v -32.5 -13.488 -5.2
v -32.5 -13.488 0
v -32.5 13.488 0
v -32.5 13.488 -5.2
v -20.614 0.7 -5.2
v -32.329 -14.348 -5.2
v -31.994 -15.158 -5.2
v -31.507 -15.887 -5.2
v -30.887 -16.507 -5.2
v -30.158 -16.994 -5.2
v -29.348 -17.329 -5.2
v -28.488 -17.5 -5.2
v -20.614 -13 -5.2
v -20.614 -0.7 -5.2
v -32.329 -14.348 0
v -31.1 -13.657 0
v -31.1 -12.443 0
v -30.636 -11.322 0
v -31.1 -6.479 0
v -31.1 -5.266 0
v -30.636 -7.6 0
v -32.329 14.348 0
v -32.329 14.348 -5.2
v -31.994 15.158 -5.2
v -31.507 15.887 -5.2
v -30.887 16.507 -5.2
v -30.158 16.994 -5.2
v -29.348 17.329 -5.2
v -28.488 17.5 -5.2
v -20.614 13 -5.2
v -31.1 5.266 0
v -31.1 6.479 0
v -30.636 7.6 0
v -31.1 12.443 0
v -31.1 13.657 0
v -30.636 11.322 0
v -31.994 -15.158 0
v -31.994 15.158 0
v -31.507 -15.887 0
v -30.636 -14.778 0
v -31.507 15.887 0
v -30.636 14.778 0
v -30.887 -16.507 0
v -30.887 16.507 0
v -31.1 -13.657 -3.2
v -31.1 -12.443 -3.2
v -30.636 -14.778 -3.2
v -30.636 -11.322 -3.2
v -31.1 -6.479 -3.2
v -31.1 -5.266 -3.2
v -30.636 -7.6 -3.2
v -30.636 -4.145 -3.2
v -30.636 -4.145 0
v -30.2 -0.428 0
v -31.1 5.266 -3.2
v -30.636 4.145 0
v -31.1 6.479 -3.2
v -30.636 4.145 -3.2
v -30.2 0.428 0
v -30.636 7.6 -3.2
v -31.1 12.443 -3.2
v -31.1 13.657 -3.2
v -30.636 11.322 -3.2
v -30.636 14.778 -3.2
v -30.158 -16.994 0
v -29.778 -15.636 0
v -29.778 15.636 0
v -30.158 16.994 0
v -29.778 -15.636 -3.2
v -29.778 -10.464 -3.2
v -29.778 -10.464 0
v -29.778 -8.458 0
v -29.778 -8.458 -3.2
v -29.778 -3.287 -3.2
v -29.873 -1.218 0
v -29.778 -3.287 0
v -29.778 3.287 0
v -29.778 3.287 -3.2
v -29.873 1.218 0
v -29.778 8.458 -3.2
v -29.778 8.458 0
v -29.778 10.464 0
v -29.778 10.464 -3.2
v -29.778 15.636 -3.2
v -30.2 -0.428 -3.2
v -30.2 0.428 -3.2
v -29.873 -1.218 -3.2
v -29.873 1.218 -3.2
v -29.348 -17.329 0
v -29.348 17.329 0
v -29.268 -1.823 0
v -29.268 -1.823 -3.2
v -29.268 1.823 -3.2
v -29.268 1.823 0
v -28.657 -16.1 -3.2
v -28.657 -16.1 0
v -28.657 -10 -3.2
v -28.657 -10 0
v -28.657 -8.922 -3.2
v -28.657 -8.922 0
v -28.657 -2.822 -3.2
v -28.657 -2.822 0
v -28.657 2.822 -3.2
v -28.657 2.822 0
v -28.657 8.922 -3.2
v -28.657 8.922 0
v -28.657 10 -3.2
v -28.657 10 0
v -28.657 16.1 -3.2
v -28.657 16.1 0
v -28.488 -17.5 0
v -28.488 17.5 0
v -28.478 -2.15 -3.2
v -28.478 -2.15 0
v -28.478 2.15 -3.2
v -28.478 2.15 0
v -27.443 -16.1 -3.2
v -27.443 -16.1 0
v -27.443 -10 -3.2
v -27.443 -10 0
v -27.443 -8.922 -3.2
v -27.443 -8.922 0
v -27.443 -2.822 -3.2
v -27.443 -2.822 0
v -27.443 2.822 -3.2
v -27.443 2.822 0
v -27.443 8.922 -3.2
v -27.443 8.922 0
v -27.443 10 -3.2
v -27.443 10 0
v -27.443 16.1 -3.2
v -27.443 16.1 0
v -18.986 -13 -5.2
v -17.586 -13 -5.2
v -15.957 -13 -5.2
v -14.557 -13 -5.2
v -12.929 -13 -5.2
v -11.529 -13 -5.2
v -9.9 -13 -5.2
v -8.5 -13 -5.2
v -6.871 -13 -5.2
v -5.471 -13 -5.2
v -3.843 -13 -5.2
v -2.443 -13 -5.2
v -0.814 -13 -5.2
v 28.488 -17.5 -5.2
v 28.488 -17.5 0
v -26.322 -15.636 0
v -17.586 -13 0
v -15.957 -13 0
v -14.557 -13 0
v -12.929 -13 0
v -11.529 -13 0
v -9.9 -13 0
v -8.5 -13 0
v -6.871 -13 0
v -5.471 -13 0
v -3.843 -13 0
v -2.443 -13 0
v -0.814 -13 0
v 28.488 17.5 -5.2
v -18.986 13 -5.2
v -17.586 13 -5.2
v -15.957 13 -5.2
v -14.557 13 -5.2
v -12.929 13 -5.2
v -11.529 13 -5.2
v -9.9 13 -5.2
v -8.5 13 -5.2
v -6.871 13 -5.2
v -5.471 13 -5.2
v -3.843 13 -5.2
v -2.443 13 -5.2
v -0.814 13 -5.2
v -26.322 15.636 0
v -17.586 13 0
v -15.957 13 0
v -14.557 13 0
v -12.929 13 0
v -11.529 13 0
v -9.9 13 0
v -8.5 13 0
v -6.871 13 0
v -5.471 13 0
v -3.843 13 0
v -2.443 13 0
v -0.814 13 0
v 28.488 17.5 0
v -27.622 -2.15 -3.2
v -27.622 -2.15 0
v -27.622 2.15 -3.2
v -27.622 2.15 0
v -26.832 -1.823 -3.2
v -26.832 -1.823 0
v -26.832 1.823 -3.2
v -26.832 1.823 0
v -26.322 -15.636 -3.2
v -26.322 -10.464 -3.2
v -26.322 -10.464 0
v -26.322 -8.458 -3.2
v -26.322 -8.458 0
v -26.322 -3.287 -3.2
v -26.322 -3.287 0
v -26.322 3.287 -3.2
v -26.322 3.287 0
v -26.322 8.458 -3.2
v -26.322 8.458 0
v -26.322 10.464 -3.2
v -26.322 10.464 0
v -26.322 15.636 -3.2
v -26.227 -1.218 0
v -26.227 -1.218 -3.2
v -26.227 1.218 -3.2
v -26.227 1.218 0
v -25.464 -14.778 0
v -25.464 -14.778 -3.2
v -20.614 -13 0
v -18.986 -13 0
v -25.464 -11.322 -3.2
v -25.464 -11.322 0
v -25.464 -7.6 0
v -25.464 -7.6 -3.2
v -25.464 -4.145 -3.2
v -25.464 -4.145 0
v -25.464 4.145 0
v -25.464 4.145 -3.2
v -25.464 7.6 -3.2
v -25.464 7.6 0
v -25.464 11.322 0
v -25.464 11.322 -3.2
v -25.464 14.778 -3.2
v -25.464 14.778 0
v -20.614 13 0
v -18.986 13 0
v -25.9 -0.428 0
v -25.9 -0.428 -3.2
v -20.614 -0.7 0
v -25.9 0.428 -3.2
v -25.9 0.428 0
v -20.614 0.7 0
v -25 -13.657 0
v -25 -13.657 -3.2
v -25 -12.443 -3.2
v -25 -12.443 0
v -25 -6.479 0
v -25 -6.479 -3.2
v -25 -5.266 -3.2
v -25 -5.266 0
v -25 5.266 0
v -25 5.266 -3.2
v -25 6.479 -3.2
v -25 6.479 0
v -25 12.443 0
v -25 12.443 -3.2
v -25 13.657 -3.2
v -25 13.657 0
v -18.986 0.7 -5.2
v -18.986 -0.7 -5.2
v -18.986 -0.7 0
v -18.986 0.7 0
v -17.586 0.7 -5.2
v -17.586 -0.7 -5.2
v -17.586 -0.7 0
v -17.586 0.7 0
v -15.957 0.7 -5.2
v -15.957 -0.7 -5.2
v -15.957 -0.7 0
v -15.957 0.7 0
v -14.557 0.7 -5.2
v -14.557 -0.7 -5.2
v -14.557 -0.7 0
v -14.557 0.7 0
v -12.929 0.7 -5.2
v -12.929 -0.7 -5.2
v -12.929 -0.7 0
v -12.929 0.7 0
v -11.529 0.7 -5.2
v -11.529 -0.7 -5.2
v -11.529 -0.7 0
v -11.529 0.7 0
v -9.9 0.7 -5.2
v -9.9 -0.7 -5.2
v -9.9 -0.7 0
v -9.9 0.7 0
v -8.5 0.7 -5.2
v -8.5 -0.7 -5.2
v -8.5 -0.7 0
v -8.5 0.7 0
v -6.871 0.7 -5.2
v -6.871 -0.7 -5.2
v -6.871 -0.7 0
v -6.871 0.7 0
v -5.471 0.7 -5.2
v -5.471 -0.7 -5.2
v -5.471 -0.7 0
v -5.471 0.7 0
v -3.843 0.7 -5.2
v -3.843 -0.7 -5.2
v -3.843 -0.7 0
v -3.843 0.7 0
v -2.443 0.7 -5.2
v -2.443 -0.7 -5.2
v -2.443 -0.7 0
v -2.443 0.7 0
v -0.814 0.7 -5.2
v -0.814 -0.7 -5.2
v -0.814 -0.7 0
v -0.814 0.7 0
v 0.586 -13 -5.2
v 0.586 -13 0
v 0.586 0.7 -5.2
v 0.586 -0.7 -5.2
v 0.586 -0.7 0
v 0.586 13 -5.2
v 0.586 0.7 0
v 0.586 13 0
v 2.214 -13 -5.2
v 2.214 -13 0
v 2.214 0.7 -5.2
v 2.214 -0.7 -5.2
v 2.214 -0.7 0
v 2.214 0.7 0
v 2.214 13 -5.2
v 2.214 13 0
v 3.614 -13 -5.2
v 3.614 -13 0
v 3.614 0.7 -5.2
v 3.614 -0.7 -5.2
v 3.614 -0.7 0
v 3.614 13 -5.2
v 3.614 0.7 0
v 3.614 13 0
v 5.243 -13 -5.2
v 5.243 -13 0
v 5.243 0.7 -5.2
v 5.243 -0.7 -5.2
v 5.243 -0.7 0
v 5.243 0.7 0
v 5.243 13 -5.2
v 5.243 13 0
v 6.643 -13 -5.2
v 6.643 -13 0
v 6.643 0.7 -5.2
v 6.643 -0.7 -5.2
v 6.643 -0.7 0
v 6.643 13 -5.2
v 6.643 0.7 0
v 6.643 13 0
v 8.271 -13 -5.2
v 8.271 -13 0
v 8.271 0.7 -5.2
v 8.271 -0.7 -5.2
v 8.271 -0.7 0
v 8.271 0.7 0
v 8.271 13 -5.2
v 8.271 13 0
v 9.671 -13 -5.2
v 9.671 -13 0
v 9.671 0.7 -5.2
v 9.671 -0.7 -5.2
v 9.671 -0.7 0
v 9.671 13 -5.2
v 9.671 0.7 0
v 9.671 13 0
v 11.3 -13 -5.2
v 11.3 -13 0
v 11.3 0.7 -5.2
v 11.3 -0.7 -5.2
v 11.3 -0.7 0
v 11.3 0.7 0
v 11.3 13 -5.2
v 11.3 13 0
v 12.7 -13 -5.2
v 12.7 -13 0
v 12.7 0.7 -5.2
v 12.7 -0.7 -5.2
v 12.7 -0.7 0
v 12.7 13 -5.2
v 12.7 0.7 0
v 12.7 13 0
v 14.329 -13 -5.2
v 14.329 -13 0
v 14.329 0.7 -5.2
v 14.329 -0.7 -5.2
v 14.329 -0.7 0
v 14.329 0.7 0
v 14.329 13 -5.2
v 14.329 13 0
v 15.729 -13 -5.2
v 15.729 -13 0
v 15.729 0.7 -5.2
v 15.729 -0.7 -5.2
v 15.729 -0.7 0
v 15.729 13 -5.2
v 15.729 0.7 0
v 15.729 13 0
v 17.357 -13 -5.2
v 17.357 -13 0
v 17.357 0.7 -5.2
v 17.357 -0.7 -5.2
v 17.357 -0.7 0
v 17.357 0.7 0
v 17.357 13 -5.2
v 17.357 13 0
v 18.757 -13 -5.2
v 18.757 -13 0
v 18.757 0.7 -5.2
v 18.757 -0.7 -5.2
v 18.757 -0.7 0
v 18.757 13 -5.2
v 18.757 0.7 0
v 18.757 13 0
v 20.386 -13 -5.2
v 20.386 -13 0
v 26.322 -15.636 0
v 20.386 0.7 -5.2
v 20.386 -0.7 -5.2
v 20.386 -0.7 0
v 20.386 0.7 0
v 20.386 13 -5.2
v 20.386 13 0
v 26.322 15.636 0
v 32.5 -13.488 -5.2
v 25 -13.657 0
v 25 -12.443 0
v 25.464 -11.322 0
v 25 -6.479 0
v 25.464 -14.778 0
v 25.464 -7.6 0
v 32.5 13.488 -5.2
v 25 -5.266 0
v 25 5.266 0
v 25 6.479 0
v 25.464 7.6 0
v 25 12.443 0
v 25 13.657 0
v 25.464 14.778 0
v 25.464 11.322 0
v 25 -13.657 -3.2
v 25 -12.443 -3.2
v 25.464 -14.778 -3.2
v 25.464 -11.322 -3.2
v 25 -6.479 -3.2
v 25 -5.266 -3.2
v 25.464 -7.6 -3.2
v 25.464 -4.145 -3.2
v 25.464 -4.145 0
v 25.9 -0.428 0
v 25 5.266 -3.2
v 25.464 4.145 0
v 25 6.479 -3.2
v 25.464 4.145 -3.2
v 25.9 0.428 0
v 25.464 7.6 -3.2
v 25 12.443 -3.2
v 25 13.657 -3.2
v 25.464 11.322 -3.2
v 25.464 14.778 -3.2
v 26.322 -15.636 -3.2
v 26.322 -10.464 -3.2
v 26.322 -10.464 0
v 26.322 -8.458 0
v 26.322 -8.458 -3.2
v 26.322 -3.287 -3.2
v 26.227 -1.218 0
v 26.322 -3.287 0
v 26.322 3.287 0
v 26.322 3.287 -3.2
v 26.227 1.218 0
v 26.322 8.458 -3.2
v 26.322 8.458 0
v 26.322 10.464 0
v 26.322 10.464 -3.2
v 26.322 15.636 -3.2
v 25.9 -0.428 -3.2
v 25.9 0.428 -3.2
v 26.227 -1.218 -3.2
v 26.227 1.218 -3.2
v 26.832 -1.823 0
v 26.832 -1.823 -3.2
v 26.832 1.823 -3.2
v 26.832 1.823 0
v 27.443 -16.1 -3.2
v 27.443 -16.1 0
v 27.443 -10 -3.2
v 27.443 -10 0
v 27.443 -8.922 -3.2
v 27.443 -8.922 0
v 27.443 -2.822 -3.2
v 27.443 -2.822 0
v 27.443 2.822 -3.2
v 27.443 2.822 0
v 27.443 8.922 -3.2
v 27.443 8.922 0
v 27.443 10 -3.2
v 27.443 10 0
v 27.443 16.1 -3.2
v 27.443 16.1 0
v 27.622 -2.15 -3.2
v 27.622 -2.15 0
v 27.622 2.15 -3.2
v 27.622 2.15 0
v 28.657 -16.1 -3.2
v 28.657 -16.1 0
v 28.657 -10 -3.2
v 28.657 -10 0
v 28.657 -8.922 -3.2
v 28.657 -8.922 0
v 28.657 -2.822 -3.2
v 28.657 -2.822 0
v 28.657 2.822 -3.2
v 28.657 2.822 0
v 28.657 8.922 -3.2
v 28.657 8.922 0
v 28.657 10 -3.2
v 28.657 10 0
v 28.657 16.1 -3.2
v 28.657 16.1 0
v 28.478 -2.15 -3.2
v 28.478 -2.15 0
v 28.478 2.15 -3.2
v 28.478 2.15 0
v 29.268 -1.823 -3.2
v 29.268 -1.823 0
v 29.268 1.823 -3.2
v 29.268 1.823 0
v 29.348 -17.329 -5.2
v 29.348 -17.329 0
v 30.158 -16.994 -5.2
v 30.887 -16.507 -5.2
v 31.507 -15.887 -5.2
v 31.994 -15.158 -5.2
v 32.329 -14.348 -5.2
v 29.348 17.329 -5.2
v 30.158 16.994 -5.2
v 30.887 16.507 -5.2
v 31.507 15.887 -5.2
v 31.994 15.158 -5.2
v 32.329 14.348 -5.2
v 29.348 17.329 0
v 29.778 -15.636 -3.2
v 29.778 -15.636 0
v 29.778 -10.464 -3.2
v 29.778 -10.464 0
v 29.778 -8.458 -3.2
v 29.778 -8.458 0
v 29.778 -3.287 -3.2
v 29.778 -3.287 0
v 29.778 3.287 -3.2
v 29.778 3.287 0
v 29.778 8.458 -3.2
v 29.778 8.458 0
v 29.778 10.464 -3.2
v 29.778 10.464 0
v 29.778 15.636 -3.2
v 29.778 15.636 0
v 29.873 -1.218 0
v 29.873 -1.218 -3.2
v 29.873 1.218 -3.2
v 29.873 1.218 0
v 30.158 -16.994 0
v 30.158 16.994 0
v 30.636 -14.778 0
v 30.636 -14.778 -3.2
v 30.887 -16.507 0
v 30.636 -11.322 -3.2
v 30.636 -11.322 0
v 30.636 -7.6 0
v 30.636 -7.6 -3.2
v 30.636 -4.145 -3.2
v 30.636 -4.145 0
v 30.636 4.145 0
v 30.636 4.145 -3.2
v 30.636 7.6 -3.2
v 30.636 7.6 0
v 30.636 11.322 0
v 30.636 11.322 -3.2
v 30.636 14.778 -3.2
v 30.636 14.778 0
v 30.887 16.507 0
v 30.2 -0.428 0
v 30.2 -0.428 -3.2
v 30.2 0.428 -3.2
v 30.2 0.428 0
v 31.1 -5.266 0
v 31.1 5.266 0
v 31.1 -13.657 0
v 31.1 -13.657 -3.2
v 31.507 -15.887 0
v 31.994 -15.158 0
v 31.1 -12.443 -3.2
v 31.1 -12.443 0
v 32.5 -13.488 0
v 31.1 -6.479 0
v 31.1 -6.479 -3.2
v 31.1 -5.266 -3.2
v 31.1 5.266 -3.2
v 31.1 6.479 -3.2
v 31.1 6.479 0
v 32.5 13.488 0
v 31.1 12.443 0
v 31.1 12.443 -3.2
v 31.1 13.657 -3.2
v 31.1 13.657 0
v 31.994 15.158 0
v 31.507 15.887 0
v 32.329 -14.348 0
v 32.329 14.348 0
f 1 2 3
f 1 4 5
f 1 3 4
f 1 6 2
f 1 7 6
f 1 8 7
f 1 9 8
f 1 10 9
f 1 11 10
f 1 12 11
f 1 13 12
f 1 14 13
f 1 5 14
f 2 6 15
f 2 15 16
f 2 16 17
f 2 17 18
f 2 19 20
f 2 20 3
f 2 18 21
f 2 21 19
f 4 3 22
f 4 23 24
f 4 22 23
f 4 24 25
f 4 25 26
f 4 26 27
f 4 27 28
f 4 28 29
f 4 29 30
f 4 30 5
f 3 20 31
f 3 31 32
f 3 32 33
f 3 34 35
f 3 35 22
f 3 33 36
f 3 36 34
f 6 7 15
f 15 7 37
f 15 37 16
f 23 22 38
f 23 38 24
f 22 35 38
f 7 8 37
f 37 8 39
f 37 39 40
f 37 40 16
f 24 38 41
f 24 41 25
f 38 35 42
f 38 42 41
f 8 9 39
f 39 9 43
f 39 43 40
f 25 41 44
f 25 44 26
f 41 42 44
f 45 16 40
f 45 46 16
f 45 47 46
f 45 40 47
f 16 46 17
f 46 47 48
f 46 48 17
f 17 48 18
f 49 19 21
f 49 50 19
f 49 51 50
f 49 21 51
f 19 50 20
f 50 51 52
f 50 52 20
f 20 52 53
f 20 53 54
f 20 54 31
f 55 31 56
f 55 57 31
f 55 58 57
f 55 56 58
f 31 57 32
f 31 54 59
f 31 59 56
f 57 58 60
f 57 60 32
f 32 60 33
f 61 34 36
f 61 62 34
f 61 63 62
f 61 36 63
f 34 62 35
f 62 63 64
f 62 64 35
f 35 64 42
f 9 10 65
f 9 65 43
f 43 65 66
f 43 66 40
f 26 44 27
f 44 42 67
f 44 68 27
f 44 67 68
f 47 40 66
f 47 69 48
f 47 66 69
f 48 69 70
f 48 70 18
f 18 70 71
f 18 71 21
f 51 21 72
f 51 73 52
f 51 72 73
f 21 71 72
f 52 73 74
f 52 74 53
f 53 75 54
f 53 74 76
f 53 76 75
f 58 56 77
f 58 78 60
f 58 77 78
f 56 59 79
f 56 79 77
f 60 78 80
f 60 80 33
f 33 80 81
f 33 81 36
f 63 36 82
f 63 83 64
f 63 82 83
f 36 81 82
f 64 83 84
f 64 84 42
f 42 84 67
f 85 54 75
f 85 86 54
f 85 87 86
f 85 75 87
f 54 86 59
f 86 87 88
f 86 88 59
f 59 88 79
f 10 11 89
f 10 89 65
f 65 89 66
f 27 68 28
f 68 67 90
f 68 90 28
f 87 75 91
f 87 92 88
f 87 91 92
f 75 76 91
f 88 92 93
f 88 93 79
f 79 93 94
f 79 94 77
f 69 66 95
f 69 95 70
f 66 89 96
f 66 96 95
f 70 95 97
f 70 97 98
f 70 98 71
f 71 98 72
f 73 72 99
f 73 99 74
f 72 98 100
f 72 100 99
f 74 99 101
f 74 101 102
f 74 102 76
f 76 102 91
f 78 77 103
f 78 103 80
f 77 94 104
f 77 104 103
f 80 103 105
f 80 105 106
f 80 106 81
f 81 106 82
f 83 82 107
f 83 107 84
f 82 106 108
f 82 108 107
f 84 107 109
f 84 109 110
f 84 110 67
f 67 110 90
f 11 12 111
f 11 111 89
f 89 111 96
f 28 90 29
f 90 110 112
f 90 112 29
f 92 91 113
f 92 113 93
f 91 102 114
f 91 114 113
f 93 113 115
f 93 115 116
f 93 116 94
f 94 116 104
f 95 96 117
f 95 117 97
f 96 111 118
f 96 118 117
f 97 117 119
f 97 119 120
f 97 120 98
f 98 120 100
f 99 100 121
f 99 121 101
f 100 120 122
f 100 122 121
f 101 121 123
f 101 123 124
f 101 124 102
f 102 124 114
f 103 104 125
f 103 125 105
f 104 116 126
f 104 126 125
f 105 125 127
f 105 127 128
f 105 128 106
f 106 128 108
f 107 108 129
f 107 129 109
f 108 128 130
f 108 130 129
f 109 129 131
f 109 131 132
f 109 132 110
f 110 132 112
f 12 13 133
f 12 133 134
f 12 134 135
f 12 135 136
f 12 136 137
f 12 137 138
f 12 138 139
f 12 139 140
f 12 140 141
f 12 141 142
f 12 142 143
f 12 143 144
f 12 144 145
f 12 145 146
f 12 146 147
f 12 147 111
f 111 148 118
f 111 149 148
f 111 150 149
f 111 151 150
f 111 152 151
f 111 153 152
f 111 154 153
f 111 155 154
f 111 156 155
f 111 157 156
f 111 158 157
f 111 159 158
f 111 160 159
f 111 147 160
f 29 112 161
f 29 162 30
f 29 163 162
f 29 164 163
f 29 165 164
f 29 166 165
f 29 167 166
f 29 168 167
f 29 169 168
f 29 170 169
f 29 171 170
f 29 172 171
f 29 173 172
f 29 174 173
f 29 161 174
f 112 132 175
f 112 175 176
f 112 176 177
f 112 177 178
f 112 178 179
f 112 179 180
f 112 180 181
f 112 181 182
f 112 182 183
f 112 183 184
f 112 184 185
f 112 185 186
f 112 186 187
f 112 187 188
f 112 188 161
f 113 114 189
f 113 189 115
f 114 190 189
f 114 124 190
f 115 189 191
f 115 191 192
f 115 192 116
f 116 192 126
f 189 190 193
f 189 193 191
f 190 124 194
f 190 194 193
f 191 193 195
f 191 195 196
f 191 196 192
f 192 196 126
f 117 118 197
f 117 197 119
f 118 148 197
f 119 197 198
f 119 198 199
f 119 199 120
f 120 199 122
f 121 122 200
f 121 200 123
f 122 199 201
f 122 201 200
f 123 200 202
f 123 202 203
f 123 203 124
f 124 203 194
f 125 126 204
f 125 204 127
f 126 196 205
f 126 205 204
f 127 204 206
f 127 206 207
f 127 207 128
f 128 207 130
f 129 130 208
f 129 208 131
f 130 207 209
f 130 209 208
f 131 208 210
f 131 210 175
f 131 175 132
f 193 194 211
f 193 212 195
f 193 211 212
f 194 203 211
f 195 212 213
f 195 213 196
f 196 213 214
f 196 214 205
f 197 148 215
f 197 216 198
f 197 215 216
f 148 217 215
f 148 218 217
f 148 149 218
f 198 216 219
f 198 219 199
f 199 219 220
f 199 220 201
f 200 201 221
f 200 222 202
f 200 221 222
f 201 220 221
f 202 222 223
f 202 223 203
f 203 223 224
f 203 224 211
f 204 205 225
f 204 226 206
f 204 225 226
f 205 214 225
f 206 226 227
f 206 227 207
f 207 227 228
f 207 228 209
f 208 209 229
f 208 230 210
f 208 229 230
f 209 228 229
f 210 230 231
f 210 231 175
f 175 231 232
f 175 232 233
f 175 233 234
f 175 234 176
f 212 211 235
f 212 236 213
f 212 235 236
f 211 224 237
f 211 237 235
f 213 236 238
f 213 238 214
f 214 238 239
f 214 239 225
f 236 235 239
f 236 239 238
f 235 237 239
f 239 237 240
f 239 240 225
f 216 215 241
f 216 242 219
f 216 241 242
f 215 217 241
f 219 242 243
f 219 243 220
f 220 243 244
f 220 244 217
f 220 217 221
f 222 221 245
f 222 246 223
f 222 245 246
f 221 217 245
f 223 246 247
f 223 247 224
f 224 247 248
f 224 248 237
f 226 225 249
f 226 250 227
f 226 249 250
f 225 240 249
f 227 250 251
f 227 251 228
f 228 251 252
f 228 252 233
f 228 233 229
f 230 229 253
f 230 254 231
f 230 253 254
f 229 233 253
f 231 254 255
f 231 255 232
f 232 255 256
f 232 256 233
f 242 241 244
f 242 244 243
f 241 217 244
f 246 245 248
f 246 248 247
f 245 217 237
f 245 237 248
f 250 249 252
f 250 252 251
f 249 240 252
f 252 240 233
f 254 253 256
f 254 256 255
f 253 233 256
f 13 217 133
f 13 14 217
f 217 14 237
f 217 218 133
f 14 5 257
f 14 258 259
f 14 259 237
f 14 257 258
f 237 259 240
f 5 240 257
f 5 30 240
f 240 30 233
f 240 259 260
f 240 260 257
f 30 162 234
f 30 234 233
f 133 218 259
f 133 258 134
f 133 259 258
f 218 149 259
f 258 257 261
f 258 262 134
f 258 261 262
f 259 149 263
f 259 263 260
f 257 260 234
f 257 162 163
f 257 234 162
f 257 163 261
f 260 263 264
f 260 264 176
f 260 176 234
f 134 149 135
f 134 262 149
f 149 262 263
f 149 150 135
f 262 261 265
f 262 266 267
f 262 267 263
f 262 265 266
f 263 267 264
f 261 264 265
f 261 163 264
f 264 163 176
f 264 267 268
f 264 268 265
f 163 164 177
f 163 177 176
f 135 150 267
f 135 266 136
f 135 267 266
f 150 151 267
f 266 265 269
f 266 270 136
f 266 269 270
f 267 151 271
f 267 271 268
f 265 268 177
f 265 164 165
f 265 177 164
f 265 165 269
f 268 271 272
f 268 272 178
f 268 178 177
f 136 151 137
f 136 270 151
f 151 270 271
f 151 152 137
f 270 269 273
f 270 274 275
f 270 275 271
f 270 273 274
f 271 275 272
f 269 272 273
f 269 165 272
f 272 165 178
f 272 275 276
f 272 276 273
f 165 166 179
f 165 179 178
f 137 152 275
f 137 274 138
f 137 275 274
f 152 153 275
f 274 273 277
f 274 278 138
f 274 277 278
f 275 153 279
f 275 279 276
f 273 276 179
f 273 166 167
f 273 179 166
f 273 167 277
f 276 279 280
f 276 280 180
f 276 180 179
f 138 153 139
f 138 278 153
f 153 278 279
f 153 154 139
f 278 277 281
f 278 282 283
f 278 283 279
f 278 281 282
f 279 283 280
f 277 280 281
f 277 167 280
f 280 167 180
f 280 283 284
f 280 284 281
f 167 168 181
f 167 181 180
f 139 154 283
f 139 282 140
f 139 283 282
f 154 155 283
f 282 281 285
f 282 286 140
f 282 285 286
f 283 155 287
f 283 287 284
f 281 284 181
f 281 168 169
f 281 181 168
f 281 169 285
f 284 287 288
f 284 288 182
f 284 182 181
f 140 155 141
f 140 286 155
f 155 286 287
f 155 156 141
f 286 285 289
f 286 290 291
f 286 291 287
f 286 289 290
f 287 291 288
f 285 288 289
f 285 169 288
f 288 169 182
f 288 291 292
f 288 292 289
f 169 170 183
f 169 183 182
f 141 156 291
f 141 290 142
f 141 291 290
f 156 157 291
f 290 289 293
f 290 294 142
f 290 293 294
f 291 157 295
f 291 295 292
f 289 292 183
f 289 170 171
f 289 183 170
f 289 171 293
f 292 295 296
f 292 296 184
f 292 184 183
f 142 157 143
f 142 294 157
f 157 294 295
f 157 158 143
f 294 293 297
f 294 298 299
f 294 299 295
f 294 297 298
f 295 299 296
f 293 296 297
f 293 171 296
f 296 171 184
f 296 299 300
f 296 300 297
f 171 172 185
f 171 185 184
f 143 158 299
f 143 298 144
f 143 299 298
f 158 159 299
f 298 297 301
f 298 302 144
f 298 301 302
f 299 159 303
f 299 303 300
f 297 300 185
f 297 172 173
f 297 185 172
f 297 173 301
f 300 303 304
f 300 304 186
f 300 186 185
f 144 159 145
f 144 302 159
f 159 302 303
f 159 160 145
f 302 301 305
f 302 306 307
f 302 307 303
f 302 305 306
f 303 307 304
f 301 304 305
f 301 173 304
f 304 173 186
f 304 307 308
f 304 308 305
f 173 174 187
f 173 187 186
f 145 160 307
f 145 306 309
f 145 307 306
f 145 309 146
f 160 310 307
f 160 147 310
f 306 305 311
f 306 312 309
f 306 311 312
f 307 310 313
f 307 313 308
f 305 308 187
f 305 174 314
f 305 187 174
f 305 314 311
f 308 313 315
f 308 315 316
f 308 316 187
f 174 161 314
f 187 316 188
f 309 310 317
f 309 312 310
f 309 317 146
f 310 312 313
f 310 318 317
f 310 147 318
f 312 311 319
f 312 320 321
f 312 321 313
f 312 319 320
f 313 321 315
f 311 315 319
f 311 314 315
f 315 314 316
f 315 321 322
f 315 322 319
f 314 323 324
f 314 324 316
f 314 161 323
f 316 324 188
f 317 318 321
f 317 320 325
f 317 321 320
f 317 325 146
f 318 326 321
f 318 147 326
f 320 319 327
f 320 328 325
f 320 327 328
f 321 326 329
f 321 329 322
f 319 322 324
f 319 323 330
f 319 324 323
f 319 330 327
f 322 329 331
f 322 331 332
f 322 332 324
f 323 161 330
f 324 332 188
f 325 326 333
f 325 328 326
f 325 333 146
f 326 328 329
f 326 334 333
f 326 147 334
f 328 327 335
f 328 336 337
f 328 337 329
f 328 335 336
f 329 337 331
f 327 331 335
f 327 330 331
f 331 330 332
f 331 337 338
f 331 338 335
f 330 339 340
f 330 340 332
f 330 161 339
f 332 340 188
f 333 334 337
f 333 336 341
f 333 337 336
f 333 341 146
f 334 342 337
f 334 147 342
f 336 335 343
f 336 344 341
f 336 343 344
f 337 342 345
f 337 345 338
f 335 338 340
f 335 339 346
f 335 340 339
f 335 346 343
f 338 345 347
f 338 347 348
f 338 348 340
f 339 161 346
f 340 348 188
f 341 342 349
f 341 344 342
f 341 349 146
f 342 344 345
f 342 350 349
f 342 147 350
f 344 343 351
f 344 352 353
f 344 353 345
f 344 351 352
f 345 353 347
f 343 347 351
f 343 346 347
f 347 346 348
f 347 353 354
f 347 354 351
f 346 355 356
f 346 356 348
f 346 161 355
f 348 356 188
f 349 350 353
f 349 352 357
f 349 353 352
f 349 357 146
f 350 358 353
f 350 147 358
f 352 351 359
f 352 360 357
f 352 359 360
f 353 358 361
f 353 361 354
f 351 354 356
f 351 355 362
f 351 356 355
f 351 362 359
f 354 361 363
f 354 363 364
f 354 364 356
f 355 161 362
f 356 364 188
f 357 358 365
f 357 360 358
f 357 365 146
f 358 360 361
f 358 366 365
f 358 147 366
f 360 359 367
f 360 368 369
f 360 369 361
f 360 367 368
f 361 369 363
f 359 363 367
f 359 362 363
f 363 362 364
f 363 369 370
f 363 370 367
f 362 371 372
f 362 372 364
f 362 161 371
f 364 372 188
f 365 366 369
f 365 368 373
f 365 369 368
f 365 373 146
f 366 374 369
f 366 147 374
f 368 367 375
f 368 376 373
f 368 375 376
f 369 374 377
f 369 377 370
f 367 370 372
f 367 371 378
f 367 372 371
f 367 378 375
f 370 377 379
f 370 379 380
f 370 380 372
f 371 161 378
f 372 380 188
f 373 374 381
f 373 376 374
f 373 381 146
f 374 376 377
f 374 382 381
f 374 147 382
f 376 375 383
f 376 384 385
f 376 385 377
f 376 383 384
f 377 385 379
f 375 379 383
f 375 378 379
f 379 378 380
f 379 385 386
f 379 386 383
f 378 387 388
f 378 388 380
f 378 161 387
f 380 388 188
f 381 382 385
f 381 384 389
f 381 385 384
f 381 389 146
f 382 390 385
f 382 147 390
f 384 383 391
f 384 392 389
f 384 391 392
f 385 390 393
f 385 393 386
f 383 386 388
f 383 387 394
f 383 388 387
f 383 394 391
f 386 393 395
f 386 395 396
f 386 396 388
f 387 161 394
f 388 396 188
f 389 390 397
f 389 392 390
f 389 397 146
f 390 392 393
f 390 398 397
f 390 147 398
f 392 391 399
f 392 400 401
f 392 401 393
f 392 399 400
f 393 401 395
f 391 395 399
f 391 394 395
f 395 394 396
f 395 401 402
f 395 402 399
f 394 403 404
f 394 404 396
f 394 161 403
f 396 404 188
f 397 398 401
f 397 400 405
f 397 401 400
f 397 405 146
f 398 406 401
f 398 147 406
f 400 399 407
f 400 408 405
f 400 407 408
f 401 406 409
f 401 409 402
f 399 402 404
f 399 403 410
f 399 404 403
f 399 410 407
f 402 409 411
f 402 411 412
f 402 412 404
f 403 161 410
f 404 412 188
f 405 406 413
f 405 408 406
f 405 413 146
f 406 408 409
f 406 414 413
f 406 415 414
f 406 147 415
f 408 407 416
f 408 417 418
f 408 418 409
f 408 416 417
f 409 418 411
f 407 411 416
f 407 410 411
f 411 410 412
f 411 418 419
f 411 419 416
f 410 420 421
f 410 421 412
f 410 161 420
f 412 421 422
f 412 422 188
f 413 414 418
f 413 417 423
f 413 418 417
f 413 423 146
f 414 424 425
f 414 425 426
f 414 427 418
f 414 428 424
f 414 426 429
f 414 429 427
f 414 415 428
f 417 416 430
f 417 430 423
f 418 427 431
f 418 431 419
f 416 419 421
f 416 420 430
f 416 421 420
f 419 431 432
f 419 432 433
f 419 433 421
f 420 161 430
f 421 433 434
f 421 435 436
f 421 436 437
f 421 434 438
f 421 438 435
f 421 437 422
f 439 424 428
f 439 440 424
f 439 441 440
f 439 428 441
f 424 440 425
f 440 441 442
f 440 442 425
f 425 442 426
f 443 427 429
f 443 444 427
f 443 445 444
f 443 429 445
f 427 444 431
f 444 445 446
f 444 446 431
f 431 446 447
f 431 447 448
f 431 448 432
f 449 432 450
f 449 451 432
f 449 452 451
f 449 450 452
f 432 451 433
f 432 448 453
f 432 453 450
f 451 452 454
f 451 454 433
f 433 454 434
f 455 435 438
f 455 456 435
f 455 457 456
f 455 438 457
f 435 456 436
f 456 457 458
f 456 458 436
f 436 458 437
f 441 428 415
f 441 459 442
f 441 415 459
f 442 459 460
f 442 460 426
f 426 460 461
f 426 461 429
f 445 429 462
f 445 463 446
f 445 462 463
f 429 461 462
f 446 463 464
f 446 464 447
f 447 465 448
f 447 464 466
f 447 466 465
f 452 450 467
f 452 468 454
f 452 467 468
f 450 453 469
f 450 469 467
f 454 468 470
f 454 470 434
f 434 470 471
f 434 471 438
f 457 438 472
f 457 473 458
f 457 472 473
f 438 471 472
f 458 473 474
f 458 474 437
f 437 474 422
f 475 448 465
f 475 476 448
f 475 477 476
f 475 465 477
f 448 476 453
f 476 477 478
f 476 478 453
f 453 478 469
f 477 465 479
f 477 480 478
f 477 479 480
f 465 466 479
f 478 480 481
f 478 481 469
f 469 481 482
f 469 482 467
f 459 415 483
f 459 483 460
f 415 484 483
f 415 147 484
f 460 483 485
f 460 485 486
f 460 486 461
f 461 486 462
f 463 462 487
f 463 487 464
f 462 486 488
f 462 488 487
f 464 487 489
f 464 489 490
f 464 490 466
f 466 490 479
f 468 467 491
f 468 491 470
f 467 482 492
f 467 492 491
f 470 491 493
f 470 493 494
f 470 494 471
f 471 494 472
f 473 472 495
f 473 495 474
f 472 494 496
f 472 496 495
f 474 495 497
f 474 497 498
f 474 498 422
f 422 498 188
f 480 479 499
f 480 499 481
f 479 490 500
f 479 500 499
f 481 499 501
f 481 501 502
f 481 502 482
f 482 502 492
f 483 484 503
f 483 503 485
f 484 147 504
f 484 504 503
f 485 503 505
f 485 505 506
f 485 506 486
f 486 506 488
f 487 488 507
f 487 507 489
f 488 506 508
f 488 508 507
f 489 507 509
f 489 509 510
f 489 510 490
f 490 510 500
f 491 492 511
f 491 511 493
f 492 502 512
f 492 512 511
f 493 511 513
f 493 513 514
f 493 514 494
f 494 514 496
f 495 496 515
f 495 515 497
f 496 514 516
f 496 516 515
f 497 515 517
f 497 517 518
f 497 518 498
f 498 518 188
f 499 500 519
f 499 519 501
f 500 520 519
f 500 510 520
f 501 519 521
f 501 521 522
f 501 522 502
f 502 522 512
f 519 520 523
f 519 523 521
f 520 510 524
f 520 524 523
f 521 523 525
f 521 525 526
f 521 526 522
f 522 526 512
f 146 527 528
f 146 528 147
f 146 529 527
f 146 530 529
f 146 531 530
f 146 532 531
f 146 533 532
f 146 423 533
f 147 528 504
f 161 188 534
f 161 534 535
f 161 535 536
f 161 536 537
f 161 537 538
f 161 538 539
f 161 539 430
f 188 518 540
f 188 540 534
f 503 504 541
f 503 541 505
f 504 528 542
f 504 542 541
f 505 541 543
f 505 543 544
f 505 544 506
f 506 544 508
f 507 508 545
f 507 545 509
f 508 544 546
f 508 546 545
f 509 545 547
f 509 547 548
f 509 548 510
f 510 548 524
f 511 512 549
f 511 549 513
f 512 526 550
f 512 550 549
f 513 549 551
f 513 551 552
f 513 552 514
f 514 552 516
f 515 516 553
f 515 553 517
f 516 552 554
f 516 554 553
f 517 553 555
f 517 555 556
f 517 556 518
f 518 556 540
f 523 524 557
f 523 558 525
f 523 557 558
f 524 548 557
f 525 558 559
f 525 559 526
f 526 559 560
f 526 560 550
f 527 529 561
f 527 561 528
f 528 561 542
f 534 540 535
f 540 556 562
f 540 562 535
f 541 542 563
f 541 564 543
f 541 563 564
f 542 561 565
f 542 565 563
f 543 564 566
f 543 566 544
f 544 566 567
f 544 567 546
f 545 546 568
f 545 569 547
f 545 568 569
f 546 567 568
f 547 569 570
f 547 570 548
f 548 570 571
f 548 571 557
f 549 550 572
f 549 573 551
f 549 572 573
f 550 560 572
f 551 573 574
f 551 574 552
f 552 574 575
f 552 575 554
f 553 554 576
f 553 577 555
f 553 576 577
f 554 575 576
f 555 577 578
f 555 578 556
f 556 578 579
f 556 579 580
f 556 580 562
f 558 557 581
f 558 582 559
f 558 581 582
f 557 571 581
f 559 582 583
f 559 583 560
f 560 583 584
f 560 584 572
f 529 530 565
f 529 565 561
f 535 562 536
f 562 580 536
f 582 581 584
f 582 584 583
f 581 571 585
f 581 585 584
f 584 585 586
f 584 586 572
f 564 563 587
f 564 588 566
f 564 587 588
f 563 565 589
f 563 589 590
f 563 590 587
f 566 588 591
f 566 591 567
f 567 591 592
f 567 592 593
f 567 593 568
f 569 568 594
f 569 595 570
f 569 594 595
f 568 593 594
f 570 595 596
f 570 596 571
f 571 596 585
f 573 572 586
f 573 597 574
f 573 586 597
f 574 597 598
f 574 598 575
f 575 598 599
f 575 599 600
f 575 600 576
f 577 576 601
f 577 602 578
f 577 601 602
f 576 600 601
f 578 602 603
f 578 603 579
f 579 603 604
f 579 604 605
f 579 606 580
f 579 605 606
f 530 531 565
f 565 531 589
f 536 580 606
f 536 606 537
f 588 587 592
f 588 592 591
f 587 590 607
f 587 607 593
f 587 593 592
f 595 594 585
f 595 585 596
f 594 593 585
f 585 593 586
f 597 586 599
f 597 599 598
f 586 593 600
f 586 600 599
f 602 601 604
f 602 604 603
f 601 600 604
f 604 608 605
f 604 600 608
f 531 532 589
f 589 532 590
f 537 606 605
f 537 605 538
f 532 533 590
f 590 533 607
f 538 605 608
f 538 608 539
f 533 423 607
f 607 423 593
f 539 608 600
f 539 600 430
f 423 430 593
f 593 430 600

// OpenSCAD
include <../voron-2-mode.scad>;

rotate([180,0,0]) {
  lid_stack();
}
